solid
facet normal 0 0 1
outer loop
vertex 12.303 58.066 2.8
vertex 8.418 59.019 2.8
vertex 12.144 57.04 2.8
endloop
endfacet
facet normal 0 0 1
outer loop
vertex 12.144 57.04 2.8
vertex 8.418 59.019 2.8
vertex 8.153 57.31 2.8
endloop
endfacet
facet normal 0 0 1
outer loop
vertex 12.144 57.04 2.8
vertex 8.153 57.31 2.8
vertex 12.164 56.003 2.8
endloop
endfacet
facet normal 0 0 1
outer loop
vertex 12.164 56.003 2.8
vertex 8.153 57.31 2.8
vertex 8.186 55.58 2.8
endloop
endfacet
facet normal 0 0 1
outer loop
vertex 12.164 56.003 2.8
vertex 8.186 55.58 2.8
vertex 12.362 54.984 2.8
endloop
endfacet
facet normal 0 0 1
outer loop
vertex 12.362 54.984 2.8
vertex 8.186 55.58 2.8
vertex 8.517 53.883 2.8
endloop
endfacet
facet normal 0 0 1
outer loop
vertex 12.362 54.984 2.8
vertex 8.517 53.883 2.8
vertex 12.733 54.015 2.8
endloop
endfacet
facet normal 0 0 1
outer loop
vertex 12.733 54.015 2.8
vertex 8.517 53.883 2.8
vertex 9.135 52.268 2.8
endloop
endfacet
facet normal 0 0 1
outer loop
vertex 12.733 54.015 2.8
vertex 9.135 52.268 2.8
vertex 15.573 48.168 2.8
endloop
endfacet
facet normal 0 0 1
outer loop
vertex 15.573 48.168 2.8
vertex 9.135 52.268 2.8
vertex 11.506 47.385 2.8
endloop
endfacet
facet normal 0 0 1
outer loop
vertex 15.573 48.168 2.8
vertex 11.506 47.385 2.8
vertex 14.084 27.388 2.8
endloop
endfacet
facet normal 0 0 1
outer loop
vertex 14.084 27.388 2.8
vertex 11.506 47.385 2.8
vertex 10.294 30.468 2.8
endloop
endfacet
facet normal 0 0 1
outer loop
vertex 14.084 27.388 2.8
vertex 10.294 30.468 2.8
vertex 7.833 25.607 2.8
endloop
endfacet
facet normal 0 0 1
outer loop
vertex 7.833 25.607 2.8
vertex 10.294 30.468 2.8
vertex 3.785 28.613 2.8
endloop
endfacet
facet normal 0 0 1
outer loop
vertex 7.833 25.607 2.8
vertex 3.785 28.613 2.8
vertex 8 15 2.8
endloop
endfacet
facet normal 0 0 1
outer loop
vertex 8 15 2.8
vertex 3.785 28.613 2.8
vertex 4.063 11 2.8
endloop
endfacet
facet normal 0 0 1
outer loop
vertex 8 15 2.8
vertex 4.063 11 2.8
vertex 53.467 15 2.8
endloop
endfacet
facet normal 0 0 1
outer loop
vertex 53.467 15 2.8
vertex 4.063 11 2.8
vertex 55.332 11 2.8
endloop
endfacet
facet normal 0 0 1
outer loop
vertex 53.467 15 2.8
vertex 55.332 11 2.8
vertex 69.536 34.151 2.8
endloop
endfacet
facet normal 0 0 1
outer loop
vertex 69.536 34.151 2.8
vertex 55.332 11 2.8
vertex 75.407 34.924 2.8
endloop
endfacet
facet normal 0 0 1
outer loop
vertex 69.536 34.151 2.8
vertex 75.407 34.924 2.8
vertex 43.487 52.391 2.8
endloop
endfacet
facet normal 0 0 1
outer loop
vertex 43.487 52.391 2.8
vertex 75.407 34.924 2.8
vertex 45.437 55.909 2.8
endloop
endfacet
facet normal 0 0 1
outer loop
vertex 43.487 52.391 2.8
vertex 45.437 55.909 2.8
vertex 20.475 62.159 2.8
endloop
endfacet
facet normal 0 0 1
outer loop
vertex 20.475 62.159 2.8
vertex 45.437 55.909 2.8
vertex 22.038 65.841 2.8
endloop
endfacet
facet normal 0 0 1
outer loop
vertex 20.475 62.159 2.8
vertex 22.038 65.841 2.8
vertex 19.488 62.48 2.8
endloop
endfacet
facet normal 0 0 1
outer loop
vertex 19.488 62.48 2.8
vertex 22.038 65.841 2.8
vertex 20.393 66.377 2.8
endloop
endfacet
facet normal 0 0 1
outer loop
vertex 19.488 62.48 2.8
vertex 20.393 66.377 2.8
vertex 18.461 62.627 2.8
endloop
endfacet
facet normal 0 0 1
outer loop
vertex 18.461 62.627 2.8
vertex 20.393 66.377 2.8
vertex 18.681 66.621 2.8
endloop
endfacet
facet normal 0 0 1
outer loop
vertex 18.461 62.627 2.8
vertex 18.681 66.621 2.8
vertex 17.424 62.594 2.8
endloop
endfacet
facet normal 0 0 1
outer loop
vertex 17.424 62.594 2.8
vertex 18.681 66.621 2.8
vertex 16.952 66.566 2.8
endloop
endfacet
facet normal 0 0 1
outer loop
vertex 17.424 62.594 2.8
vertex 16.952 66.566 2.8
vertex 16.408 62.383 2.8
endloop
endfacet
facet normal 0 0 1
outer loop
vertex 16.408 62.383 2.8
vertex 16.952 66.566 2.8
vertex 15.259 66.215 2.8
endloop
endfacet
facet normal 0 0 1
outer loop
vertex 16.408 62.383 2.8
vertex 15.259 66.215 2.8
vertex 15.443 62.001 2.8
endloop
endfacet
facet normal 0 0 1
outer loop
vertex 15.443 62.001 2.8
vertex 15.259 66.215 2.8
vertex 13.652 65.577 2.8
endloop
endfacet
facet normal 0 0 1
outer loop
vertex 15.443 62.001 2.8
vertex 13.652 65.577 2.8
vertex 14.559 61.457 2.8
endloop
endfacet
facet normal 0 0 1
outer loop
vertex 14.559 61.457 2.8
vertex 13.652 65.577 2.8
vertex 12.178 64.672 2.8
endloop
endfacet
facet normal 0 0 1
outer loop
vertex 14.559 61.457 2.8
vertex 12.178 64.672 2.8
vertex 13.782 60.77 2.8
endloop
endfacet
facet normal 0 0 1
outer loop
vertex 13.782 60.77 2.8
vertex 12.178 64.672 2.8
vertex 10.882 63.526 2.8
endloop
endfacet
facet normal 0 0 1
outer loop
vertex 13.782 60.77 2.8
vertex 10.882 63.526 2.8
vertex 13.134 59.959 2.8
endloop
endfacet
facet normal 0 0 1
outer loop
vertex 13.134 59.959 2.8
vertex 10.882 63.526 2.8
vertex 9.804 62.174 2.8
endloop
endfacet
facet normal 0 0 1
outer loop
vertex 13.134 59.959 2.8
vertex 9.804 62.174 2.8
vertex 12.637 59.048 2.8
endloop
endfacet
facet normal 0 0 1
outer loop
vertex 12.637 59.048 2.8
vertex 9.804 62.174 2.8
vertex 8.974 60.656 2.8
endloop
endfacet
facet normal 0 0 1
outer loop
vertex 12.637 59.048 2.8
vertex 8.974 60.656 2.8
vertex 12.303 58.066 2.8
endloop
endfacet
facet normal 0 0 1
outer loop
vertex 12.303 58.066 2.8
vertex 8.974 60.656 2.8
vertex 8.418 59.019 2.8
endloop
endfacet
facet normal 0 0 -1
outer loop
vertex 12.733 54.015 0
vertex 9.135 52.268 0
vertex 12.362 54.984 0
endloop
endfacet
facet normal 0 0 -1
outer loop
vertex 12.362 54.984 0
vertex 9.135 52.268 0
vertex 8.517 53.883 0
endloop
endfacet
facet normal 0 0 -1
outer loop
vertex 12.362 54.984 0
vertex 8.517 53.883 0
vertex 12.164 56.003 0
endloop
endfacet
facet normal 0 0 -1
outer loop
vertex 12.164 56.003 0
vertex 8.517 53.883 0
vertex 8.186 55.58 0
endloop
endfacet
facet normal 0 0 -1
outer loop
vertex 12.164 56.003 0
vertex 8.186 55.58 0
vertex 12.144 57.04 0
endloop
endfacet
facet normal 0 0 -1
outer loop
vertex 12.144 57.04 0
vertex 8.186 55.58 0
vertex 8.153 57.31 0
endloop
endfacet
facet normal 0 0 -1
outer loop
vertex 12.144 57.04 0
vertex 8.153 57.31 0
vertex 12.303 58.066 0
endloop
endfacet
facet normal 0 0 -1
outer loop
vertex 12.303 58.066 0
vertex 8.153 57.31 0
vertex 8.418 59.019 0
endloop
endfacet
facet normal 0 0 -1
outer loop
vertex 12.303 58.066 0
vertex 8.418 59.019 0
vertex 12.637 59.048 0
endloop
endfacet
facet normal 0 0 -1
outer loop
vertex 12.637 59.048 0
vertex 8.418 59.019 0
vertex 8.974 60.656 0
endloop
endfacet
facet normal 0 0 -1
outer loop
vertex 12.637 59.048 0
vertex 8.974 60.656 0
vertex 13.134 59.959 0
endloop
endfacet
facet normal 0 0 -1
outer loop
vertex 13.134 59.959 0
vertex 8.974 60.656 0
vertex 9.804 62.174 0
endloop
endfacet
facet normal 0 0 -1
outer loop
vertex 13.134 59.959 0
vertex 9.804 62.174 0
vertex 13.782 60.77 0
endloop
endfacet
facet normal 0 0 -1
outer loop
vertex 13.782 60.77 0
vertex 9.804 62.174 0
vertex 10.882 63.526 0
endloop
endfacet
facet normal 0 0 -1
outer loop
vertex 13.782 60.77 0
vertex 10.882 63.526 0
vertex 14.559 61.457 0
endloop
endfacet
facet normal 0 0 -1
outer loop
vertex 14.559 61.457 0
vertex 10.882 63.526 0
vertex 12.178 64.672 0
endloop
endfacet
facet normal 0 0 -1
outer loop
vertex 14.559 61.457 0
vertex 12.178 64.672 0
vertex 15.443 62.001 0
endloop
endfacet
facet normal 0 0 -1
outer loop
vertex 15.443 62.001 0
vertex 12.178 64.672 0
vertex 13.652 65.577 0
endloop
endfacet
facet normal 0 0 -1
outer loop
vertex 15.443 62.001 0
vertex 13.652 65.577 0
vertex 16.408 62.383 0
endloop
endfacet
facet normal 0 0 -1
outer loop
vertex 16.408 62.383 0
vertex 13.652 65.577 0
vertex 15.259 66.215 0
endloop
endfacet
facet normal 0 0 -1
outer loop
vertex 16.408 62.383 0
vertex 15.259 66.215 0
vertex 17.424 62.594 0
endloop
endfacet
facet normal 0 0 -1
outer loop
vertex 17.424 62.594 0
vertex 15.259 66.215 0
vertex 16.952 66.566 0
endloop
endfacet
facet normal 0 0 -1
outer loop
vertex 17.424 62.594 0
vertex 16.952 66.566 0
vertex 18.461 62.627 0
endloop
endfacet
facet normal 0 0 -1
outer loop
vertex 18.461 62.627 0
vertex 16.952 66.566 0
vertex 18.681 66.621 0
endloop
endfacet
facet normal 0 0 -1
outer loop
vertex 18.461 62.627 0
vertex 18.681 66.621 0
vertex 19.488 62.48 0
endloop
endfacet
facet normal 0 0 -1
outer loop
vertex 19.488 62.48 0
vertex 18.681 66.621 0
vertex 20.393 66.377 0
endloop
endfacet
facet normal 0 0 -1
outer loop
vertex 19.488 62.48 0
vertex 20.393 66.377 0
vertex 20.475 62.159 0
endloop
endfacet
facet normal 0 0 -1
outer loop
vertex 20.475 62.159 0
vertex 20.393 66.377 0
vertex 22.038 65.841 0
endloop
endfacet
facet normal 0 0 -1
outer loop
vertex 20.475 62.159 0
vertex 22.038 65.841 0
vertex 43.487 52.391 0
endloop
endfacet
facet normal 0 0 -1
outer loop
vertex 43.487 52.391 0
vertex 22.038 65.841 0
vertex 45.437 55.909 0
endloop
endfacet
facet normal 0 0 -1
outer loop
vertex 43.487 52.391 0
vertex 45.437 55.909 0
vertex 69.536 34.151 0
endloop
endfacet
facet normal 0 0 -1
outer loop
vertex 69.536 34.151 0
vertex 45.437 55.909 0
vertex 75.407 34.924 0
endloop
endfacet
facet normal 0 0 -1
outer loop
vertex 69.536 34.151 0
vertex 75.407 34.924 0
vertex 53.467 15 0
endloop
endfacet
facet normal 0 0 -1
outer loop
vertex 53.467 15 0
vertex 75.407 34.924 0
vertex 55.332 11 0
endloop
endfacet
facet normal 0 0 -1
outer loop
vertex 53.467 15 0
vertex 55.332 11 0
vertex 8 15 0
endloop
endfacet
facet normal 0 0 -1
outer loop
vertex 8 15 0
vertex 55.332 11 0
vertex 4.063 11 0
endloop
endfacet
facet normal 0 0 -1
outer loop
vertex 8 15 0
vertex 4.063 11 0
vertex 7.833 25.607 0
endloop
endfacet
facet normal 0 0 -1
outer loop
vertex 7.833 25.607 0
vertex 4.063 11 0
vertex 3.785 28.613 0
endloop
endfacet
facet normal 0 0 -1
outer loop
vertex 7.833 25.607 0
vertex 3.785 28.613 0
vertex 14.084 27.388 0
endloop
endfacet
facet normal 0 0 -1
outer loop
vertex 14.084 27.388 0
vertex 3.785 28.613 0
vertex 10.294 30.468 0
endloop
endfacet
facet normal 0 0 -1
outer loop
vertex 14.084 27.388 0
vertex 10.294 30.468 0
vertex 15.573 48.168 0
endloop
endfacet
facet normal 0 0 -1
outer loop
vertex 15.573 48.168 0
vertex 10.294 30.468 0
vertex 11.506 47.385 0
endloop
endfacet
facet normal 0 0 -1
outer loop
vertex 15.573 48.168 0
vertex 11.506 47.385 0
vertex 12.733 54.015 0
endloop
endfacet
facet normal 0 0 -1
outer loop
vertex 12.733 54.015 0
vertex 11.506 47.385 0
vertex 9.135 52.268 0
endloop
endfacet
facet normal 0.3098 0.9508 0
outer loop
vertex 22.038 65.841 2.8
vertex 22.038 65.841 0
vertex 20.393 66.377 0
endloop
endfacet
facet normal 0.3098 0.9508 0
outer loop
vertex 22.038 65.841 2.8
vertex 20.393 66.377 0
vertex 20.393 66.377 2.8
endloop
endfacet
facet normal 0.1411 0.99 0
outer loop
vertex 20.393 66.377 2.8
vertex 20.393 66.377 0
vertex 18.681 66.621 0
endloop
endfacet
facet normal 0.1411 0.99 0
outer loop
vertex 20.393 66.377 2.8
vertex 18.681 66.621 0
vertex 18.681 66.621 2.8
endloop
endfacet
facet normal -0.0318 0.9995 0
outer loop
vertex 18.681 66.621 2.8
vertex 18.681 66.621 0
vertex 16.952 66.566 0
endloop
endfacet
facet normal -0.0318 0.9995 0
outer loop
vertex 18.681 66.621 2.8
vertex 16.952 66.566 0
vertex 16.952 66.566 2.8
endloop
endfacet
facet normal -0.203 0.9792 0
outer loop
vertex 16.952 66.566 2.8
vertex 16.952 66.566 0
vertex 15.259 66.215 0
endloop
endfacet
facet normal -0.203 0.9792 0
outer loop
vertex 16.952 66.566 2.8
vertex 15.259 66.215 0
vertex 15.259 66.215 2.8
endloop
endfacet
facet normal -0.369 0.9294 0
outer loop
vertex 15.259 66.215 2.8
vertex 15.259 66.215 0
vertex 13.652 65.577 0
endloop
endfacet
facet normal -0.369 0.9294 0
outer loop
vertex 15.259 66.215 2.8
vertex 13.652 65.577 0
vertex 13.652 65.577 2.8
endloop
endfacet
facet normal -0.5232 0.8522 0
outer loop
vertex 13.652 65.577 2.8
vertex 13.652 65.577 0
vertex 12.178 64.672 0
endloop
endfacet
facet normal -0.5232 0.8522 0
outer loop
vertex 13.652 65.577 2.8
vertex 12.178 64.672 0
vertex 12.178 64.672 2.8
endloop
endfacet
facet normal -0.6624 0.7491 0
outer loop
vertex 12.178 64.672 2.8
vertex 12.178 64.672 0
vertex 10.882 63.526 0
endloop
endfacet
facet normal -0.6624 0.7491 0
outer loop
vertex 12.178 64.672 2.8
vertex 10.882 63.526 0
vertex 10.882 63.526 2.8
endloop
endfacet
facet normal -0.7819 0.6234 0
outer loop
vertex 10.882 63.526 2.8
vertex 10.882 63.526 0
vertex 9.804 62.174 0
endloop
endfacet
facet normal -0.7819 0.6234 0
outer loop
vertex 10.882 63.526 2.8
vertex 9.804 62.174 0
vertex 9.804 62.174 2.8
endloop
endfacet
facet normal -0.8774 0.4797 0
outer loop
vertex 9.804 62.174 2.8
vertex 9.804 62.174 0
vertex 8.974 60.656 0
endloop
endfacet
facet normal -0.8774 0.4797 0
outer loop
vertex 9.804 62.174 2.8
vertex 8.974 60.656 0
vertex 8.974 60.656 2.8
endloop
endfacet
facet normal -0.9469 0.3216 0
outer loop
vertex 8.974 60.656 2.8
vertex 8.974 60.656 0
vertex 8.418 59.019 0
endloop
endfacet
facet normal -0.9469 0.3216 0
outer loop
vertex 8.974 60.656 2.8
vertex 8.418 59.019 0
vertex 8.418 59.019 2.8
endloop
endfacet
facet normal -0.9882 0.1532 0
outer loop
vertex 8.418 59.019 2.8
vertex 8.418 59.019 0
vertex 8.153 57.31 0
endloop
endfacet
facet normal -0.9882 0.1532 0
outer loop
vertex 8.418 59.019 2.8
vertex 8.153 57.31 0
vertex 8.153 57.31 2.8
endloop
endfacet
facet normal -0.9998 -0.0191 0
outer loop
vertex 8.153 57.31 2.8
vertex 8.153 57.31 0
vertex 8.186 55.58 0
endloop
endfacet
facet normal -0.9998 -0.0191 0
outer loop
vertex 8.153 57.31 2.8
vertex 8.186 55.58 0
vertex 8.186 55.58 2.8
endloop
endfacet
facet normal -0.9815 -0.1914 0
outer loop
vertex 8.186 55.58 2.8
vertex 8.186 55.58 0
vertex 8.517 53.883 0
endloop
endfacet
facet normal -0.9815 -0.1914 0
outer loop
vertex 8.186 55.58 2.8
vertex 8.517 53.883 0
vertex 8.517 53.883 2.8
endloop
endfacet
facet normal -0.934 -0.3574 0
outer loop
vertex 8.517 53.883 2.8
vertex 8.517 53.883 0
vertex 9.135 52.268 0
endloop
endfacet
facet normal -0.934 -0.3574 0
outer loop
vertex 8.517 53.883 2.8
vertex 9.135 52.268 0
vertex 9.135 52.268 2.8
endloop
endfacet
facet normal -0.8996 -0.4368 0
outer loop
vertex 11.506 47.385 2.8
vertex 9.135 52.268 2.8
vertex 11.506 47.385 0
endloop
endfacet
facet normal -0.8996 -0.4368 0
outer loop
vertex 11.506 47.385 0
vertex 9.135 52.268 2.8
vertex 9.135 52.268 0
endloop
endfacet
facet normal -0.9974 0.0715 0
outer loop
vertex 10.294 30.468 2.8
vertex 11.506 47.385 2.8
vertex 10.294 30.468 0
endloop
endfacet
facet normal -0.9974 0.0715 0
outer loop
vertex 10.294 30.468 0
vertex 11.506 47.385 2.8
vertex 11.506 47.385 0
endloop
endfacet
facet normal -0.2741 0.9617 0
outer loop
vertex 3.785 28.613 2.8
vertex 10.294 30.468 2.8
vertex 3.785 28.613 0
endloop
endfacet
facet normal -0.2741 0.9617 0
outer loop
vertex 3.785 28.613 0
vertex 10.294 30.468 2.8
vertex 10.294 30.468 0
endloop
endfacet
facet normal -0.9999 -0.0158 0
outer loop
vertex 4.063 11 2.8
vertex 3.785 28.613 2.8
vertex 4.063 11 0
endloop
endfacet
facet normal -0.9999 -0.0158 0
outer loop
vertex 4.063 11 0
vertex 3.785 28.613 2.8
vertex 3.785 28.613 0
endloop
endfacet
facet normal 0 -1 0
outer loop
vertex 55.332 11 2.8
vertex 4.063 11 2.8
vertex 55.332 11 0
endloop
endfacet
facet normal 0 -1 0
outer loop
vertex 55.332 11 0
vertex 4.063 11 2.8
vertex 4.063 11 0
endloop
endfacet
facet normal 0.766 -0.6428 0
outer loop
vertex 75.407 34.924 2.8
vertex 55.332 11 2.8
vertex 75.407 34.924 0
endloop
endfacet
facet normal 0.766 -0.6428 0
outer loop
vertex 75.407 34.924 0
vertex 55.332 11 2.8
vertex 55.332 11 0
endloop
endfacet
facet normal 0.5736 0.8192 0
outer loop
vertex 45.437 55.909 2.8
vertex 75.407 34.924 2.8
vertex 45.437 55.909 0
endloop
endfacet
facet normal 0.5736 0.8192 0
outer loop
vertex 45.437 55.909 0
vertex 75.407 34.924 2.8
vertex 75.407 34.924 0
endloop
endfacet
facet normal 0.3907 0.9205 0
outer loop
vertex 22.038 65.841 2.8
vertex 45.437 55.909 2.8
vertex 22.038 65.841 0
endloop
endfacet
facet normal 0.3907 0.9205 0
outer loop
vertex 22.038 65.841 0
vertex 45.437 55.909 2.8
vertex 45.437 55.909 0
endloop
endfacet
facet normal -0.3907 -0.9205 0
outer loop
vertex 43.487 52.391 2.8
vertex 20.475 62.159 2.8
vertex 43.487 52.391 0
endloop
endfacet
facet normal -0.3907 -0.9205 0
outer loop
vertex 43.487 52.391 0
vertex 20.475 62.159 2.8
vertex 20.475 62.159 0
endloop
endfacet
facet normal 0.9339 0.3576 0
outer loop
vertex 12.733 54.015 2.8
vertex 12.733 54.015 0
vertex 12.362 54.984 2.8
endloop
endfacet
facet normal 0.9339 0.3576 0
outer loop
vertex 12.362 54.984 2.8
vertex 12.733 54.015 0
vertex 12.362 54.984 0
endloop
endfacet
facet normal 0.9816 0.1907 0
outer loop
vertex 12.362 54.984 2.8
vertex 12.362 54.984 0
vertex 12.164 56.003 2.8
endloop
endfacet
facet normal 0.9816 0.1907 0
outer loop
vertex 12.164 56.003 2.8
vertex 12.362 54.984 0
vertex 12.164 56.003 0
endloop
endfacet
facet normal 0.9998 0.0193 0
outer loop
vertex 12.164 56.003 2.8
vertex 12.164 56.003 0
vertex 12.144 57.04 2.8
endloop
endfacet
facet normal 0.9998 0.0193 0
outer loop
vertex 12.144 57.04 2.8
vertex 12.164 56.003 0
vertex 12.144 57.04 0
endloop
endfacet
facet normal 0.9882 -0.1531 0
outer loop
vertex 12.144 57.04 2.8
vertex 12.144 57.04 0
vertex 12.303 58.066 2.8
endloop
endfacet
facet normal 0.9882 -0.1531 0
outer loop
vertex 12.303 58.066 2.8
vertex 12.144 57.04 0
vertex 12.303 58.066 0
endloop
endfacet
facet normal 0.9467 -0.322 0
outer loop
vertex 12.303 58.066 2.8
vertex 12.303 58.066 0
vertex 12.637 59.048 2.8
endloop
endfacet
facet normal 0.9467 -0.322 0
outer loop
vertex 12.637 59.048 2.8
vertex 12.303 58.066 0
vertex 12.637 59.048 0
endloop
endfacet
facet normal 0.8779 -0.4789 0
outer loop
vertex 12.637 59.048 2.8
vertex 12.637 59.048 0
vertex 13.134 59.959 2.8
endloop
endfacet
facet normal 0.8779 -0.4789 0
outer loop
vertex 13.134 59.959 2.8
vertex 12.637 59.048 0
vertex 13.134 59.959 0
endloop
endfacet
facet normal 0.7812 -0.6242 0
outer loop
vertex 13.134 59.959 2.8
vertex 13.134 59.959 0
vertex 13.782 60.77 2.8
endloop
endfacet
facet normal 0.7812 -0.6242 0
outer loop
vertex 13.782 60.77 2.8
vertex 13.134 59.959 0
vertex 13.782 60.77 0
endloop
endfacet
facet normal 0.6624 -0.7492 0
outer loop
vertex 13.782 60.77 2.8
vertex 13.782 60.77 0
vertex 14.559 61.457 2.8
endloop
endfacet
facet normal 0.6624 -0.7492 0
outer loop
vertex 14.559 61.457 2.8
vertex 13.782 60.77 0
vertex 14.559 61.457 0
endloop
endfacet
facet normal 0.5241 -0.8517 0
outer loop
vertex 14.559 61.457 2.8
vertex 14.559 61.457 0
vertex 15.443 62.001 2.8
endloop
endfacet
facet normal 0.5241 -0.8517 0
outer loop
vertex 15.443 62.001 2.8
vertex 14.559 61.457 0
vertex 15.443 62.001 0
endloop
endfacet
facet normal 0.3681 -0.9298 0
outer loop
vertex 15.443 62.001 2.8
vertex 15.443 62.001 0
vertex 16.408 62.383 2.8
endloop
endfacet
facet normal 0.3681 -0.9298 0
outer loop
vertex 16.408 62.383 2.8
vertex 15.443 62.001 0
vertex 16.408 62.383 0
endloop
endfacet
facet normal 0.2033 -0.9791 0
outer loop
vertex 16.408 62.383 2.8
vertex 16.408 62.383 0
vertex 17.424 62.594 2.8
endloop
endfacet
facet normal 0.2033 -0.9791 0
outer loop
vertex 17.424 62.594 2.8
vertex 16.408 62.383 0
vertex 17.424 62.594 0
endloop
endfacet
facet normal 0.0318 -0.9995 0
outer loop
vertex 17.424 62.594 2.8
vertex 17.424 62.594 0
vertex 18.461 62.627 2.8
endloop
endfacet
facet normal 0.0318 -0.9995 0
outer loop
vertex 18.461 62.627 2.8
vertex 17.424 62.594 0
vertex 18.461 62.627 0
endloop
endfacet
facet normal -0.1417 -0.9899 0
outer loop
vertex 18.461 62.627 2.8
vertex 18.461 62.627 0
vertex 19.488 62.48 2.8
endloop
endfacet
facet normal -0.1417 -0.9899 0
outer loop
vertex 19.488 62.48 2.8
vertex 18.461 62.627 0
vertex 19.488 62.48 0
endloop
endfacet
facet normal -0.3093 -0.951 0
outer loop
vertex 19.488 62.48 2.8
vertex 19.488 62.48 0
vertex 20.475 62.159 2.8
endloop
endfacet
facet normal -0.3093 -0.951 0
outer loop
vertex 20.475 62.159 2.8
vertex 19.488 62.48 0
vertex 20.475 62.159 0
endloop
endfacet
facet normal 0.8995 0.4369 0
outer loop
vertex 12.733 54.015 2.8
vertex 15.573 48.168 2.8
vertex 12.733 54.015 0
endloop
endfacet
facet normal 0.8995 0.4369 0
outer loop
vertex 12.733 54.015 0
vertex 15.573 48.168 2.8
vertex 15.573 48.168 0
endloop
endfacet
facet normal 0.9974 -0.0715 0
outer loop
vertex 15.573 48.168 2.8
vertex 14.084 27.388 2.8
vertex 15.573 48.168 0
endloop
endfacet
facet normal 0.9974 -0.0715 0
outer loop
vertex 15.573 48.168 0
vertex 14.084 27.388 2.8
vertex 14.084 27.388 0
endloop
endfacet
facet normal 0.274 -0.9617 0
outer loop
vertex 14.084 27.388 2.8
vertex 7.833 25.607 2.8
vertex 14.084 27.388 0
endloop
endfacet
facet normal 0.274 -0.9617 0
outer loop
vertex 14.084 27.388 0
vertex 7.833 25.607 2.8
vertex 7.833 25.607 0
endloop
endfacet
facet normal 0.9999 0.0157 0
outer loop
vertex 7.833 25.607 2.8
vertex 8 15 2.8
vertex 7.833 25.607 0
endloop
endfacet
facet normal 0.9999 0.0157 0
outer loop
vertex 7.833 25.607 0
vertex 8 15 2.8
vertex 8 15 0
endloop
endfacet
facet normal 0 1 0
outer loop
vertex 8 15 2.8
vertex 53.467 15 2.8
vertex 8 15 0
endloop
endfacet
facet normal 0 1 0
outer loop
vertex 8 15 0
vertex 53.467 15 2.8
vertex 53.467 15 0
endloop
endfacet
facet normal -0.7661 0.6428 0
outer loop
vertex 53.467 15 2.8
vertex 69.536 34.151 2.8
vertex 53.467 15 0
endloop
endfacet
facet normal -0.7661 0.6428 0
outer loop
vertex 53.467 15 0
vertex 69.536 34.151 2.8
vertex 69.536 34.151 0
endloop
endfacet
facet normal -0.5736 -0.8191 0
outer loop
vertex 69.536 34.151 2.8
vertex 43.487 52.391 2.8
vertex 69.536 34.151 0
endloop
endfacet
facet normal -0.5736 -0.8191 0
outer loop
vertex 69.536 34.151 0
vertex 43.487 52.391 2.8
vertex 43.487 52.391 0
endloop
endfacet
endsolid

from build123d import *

# Parameters (mm, degrees)
BOSS_EXTRUDE1_DEPTH = 2.8


with BuildPart() as part:
    # Sketch1 → Boss-Extrude1 (new body)
    with BuildSketch(Plane.XY):
        with BuildLine():
            Line((22.037686993, 65.84113938), (45.437304164, 55.908591182))
            Line((45.437304164, 55.908591182), (75.406514927, 34.923923891))
            Line((75.406514927, 34.923923891), (55.331959214, 11))
            Line((55.331959214, 11), (4.062529555, 11))
            Line((4.062529555, 11), (3.78501031, 28.61298402))
            Line((3.78501031, 28.61298402), (10.294447393, 30.467578469))
            Line((10.294447393, 30.467578469), (11.506283895, 47.384777536))
            Line((11.506283895, 47.384777536), (9.135004308, 52.267647945))
            ThreePointArc((9.135004308, 52.267647945), (10.882479022, 63.525792844), (22.037686993, 65.84113938))
        make_face()
        with BuildLine():
            Line((43.487383815, 52.390841754), (69.536418824, 34.151111078))
            Line((69.536418824, 34.151111078), (53.466728581, 15))
            Line((53.466728581, 15), (8, 15))
            Line((8, 15), (7.832869461, 25.60707524))
            Line((7.832869461, 25.60707524), (14.08410383, 27.388105521))
            Line((14.08410383, 27.388105521), (15.572640754, 48.168033695))
            Line((15.572640754, 48.168033695), (12.733152868, 54.015025105))
            ThreePointArc((12.733152868, 54.015025105), (13.781637696, 60.769912045), (20.474762479, 62.159119966))
            Line((20.474762479, 62.159119966), (43.487383815, 52.390841754))
        make_face(mode=Mode.SUBTRACT)
    extrude(amount=BOSS_EXTRUDE1_DEPTH)


solid = part.part
